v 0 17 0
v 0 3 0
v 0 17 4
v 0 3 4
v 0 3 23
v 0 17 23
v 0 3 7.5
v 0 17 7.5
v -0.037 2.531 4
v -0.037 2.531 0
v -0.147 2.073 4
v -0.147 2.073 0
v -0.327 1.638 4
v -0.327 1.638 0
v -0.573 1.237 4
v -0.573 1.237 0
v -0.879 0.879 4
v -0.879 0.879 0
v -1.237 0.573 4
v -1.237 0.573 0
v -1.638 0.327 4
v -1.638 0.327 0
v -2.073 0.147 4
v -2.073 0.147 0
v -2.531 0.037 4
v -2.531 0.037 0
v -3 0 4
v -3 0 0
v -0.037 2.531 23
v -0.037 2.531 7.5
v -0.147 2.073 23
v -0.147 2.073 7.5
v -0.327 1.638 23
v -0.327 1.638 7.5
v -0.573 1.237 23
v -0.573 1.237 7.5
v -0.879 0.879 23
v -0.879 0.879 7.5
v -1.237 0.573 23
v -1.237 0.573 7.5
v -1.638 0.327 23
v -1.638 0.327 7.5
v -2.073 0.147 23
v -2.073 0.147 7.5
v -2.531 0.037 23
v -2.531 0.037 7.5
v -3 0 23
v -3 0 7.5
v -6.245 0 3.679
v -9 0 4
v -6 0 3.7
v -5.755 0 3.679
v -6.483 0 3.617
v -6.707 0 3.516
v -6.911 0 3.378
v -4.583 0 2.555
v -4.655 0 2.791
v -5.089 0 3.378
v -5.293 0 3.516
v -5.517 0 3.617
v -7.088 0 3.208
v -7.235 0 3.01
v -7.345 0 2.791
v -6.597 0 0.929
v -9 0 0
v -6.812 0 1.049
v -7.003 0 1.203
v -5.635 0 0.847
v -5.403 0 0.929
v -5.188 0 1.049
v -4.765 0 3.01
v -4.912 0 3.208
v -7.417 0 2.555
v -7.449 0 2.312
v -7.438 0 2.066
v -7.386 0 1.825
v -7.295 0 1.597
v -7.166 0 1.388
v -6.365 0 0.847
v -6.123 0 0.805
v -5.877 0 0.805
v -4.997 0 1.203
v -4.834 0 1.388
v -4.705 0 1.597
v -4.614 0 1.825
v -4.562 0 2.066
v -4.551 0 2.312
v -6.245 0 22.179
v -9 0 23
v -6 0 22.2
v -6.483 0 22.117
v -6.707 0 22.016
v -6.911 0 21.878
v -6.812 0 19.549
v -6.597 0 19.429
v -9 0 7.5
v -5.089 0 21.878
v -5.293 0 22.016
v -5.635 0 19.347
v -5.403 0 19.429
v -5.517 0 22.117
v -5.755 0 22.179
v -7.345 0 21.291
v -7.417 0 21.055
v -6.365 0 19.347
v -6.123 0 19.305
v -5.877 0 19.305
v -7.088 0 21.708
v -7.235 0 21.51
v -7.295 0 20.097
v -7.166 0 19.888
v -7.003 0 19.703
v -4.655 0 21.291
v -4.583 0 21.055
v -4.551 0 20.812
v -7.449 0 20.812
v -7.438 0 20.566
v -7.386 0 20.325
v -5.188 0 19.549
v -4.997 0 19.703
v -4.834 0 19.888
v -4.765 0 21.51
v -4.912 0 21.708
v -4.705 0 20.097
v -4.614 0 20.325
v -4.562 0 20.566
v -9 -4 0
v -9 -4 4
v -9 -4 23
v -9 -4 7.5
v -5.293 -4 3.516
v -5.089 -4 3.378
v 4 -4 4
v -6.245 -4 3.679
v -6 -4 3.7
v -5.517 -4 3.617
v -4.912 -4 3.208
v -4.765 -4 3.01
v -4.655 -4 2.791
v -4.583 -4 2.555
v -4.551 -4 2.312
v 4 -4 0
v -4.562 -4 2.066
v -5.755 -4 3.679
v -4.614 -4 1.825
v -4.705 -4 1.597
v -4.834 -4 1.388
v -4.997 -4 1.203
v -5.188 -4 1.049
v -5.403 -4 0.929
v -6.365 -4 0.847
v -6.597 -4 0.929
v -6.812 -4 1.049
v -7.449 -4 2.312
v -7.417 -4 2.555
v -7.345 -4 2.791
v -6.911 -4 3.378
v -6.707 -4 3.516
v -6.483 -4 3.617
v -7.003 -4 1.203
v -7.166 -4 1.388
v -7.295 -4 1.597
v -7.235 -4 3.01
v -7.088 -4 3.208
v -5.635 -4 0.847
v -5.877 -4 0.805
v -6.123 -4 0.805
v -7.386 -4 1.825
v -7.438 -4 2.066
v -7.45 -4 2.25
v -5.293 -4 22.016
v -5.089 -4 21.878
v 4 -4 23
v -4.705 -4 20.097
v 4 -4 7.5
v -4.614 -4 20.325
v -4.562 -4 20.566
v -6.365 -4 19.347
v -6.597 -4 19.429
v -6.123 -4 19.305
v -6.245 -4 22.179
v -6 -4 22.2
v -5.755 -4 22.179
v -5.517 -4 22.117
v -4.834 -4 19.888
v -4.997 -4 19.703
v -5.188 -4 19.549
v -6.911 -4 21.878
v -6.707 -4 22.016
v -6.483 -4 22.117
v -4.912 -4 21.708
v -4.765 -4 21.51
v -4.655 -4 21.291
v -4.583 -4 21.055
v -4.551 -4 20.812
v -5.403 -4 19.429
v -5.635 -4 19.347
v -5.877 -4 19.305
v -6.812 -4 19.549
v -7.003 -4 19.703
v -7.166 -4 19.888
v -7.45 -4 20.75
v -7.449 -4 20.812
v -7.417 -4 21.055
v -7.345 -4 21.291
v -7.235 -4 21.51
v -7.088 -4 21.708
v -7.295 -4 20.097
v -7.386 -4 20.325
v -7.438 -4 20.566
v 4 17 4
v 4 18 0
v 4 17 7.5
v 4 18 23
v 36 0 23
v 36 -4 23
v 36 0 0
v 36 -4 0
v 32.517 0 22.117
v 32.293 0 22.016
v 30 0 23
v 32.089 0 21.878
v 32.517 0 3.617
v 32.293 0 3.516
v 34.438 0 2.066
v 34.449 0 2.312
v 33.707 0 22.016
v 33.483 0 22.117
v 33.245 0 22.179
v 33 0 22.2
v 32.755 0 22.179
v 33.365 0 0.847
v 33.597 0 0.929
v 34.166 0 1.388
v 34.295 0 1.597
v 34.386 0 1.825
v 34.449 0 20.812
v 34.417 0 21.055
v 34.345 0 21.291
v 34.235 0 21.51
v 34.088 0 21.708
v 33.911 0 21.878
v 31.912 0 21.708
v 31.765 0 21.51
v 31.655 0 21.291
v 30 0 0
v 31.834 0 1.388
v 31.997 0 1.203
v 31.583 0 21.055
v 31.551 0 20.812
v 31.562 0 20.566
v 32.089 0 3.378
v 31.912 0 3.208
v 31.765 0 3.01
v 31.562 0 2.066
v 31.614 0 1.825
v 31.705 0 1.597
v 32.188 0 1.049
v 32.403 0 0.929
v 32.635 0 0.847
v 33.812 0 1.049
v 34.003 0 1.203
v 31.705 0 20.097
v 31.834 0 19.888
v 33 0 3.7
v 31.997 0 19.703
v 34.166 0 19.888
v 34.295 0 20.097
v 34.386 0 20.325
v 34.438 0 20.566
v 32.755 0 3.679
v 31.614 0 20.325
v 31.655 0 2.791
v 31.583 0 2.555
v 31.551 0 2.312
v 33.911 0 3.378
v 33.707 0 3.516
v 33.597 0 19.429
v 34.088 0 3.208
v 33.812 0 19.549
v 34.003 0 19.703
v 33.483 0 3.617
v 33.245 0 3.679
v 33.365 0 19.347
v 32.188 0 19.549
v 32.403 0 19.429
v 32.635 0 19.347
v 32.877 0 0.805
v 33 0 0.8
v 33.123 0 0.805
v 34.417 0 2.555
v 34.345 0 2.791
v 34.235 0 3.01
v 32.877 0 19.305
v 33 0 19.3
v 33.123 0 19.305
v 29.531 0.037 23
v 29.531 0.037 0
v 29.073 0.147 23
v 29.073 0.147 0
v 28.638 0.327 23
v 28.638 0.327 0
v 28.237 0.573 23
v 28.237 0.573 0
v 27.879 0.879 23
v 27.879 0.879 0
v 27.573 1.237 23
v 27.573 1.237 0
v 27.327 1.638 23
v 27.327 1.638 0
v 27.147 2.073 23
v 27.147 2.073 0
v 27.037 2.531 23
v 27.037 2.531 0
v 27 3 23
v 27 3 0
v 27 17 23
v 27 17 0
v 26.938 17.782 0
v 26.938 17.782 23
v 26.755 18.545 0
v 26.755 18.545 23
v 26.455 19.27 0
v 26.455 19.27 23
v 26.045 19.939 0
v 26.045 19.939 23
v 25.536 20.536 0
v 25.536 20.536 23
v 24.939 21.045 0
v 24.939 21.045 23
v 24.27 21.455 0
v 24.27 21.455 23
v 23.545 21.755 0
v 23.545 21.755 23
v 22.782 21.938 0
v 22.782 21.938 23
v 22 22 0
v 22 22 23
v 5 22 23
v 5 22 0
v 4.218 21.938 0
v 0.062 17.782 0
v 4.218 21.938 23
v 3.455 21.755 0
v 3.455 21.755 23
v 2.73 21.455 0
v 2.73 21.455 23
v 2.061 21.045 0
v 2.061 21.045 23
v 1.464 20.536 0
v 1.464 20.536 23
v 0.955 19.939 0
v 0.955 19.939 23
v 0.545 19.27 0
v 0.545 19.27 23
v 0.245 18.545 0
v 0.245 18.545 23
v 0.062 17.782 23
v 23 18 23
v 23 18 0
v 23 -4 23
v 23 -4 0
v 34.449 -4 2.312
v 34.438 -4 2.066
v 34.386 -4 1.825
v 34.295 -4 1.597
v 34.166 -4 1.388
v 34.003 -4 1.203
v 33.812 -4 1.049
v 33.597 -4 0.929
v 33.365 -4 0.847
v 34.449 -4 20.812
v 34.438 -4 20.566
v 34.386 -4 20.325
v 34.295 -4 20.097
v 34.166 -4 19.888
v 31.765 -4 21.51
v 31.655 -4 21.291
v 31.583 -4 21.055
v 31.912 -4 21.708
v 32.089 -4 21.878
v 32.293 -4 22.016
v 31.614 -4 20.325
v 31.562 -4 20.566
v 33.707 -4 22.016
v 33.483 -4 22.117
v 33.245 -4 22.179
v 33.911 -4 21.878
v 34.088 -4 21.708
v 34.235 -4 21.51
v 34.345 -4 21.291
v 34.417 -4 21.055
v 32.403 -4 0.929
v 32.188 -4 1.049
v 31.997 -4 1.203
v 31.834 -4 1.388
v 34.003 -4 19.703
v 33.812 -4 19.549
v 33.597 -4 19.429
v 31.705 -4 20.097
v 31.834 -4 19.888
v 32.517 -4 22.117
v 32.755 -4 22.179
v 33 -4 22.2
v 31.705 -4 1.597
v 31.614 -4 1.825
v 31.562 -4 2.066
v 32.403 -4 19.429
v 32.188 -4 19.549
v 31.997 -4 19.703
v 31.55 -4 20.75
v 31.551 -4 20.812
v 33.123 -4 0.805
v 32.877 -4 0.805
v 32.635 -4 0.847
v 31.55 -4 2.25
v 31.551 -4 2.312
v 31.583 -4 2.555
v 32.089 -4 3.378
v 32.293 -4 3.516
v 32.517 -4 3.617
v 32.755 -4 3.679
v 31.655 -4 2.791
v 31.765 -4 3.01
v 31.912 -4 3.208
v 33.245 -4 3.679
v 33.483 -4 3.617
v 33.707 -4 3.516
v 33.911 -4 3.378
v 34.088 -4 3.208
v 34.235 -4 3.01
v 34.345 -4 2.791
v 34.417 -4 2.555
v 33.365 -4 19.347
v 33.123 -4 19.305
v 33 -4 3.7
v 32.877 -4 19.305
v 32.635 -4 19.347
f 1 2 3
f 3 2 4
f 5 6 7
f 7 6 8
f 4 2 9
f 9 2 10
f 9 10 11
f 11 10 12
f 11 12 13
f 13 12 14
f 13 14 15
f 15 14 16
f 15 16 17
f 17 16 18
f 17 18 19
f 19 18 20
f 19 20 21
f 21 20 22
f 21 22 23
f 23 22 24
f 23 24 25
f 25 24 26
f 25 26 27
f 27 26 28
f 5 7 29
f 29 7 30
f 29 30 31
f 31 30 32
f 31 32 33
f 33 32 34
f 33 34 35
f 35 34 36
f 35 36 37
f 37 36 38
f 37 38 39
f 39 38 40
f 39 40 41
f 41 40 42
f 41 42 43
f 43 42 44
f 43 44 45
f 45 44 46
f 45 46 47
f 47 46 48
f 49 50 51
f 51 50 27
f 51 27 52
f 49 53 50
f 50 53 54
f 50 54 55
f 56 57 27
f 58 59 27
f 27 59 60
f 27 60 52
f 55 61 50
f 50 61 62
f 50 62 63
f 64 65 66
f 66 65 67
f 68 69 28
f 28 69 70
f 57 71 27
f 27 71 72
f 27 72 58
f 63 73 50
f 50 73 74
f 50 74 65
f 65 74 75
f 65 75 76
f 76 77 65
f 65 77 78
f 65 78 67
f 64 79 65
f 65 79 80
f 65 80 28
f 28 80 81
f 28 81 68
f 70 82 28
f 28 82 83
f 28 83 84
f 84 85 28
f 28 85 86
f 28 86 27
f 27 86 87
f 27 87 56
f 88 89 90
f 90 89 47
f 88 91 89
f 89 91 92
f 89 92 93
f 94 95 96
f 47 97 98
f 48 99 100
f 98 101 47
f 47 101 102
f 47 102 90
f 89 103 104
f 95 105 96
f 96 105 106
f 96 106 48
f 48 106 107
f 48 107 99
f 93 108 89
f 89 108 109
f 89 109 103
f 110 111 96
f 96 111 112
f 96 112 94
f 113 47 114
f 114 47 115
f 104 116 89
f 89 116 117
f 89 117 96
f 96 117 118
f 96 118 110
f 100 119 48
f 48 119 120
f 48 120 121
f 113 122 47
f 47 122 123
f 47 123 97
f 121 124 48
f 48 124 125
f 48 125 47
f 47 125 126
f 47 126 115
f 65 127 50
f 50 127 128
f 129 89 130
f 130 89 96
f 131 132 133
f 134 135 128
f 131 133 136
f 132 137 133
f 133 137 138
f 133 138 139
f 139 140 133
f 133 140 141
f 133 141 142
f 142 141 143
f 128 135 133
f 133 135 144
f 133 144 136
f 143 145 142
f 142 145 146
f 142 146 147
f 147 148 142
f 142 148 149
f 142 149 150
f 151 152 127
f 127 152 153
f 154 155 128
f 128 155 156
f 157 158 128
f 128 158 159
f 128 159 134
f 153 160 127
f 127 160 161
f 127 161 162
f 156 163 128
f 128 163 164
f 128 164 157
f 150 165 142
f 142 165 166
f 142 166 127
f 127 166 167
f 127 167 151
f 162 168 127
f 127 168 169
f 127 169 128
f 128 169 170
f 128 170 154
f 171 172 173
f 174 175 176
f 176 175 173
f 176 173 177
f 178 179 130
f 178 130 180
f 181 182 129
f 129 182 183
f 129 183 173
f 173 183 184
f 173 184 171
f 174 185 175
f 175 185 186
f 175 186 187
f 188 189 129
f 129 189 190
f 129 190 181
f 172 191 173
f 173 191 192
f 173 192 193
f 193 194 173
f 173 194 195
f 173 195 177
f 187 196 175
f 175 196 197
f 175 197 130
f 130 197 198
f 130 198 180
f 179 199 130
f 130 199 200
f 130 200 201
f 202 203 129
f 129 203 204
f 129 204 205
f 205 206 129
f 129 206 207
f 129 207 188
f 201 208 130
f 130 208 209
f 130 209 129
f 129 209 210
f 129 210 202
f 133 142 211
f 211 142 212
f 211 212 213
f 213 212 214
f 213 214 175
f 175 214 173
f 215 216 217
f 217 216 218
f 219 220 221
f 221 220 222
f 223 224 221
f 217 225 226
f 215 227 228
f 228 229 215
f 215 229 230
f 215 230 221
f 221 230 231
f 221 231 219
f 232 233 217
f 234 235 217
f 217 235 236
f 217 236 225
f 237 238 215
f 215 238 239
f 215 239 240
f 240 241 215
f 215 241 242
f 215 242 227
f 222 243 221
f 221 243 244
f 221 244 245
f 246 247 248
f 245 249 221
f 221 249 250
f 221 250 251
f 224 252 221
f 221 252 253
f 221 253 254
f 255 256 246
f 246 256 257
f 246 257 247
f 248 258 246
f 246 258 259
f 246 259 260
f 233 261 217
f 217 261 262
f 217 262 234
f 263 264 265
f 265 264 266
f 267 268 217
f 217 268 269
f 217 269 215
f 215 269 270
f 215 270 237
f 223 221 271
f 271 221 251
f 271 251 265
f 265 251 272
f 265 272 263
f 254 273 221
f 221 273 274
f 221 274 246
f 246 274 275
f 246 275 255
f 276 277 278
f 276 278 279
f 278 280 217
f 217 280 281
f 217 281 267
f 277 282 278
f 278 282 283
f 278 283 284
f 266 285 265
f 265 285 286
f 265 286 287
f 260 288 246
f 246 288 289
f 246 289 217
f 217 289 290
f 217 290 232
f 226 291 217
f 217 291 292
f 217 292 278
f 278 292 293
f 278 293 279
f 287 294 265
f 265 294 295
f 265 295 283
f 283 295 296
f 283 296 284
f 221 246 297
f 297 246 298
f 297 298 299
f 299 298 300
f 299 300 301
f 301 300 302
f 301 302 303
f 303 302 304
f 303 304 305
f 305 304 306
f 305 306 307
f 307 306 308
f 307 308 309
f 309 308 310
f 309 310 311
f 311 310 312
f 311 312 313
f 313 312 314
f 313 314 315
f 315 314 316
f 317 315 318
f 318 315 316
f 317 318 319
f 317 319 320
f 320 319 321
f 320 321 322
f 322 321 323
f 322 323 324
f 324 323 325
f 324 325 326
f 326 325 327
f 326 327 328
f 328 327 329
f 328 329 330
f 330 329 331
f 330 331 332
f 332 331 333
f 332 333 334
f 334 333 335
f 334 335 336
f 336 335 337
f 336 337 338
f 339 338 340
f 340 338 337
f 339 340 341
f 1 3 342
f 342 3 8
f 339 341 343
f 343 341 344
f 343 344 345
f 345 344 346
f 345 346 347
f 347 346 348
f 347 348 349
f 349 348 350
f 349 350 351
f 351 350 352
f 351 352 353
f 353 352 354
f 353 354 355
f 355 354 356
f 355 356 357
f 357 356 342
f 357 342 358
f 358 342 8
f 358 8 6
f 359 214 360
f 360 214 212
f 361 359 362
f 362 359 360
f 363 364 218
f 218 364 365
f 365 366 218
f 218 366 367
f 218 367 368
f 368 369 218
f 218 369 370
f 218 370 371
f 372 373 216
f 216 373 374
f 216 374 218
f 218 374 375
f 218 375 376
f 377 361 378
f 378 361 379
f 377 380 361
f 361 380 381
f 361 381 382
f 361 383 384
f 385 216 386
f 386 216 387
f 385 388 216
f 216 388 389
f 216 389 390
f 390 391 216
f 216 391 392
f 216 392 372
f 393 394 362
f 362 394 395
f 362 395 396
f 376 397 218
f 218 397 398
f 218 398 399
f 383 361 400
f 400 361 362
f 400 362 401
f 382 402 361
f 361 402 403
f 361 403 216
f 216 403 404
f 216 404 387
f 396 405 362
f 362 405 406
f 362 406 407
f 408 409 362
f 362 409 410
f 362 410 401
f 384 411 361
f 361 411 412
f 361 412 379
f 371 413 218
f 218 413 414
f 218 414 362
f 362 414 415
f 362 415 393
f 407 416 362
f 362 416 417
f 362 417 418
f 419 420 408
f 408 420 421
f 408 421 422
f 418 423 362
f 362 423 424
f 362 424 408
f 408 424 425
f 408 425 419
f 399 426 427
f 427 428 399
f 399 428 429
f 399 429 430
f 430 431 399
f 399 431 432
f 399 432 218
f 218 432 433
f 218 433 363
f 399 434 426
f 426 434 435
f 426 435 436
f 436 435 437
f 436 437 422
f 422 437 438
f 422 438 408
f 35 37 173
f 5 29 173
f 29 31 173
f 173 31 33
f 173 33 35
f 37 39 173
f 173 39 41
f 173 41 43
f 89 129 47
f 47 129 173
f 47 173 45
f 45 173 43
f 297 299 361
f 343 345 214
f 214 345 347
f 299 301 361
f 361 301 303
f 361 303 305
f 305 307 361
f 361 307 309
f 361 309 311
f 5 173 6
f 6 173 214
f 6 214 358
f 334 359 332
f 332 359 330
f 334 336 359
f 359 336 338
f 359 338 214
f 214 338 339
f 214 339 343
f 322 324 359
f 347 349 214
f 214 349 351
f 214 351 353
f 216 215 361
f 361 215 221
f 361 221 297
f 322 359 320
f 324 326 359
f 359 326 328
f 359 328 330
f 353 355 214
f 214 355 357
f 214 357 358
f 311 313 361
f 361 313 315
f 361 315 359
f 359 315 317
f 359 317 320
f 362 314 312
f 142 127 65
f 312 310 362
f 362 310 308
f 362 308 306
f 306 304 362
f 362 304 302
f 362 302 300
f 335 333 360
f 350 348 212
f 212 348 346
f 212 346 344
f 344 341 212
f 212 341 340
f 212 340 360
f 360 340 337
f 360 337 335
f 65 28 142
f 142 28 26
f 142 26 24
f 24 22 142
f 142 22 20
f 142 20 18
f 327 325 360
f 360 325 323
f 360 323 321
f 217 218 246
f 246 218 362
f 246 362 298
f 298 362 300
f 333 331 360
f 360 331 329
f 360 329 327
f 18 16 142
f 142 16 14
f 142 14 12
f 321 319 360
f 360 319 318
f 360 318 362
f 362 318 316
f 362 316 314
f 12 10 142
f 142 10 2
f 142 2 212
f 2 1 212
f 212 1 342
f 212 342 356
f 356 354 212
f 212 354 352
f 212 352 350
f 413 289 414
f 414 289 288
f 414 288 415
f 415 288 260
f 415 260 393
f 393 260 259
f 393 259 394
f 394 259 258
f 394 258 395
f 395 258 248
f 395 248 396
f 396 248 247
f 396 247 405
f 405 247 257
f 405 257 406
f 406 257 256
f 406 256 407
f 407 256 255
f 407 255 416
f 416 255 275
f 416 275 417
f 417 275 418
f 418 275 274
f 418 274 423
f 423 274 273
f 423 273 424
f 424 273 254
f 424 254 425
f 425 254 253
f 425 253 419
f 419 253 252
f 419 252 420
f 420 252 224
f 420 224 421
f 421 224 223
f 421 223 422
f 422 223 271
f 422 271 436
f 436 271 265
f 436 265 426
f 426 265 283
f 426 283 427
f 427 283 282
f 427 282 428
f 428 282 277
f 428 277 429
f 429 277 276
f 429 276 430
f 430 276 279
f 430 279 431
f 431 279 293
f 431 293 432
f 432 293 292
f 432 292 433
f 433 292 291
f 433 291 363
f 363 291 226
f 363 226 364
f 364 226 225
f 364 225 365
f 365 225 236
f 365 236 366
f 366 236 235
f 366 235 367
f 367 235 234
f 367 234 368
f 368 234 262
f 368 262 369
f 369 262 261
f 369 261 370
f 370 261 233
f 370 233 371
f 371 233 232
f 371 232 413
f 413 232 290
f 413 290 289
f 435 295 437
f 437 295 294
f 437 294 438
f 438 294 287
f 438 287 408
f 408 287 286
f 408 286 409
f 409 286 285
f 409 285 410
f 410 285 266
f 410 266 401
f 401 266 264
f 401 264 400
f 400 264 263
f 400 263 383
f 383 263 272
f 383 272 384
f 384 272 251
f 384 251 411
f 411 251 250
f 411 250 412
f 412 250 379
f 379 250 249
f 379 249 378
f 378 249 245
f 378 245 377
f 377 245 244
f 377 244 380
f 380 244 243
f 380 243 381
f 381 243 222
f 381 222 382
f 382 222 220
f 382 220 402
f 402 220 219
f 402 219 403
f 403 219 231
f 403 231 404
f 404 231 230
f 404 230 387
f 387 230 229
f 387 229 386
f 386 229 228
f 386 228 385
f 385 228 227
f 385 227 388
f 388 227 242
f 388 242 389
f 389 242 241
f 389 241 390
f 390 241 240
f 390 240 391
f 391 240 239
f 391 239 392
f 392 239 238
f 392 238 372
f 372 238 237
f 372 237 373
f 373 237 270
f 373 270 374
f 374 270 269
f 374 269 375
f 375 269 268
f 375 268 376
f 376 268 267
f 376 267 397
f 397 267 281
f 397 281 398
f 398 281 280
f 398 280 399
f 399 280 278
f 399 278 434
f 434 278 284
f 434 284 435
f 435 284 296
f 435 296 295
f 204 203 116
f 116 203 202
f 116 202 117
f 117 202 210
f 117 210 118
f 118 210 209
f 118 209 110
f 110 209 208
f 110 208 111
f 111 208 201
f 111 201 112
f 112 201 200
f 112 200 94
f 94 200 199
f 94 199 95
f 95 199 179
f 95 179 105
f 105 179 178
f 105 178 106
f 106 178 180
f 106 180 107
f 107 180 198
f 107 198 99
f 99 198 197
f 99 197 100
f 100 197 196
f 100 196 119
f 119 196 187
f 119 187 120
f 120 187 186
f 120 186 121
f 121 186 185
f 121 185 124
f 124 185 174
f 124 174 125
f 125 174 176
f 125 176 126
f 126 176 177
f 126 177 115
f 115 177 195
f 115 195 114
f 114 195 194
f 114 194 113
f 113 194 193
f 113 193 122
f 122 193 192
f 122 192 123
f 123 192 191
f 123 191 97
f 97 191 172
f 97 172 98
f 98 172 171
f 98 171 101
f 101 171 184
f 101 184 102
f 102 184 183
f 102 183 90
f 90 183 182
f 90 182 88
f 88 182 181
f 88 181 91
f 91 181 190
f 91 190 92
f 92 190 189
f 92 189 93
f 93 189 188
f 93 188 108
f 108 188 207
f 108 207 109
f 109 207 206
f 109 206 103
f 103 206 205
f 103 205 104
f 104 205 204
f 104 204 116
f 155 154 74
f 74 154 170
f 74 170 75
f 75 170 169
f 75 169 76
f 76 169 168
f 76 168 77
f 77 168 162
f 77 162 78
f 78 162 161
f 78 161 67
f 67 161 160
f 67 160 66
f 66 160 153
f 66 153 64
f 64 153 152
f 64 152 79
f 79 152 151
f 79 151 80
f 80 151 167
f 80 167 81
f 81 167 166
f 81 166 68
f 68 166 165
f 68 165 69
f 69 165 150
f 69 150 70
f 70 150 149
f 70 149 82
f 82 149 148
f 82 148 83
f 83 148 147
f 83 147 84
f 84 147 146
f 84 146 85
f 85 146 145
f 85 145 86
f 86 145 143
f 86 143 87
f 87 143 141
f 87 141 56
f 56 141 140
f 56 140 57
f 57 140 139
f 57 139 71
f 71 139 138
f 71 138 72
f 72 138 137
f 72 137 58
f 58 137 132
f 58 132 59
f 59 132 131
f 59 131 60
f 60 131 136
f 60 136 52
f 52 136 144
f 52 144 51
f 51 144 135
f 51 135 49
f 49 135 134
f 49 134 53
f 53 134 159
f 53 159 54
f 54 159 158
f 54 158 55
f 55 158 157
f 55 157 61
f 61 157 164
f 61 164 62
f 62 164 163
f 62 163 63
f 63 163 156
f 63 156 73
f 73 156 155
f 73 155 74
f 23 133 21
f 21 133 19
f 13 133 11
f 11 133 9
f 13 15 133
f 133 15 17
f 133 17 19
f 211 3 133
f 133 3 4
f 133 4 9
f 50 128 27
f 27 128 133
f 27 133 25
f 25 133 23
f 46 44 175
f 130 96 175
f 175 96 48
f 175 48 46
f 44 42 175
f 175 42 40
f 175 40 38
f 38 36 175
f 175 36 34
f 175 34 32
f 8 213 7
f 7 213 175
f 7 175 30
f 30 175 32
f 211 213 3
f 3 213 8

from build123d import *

# Parameters (mm, degrees)
BOSS_EXTRUDE1_DEPTH     = 23
SKETCH3_R               = 1.45
CUT_EXTRUDE1_DEPTH      = 23
CUT_EXTRUDE2_DEPTH      = 23
CUT_EXTRUDE2_DEPTH_BACK = 10
SKETCH4_W               = 3.5
SKETCH4_H               = 21


with BuildPart() as part:
    # Sketch1 → Boss-Extrude1 (new body)
    with BuildSketch(Plane.XY):
        with BuildLine():
            Line((0, 3), (0, 17))
            ThreePointArc((0, 17), (1.464466094, 20.535533906), (5, 22))
            Line((5, 22), (22, 22))
            ThreePointArc((22, 22), (25.535533906, 20.535533906), (27, 17))
            Line((27, 17), (27, 3))
            ThreePointArc((27, 3), (27.878679656, 0.878679656), (30, 0))
            Line((30, 0), (36, 0))
            Line((36, 0), (36, -4))
            Line((36, -4), (23, -4))
            Line((23, -4), (23, 18))
            Line((23, 18), (4, 18))
            Line((4, 18), (4, -4))
            Line((4, -4), (-9, -4))
            Line((-9, -4), (-9, 0))
            Line((-9, 0), (-3, 0))
            ThreePointArc((-3, 0), (-0.878679656, 0.878679656), (0, 3))
        make_face()
    extrude(amount=BOSS_EXTRUDE1_DEPTH)

    # Sketch3 → Cut-Extrude1 (cut)
    with BuildSketch(Plane(origin=(0, 0, 0), x_dir=(1, 0, 0), z_dir=(0, 1, 0))):
        with Locations(Location((-6, -2.25, 0), (0, 0, 270))):
            Circle(SKETCH3_R)
        with Locations(Location((-6, -20.75, 0), (0, 0, 270))):
            Circle(SKETCH3_R)
        with Locations(Location((33, -20.75, 0), (0, 0, 180))):
            Circle(SKETCH3_R)
        with Locations(Location((33, -2.25, 0), (0, 0, 180))):
            Circle(SKETCH3_R)
    extrude(amount=-CUT_EXTRUDE1_DEPTH, mode=Mode.SUBTRACT)

    # Sketch4 → Cut-Extrude2 (cut, two sides: drawn at the far end of the back side and taken through both)
    with BuildSketch(Plane.ZY.offset(-CUT_EXTRUDE2_DEPTH_BACK)):
        with Locations((5.75, 6.5)):
            Rectangle(SKETCH4_W, SKETCH4_H)
    extrude(amount=CUT_EXTRUDE2_DEPTH + CUT_EXTRUDE2_DEPTH_BACK, mode=Mode.SUBTRACT)


solid = part.part
